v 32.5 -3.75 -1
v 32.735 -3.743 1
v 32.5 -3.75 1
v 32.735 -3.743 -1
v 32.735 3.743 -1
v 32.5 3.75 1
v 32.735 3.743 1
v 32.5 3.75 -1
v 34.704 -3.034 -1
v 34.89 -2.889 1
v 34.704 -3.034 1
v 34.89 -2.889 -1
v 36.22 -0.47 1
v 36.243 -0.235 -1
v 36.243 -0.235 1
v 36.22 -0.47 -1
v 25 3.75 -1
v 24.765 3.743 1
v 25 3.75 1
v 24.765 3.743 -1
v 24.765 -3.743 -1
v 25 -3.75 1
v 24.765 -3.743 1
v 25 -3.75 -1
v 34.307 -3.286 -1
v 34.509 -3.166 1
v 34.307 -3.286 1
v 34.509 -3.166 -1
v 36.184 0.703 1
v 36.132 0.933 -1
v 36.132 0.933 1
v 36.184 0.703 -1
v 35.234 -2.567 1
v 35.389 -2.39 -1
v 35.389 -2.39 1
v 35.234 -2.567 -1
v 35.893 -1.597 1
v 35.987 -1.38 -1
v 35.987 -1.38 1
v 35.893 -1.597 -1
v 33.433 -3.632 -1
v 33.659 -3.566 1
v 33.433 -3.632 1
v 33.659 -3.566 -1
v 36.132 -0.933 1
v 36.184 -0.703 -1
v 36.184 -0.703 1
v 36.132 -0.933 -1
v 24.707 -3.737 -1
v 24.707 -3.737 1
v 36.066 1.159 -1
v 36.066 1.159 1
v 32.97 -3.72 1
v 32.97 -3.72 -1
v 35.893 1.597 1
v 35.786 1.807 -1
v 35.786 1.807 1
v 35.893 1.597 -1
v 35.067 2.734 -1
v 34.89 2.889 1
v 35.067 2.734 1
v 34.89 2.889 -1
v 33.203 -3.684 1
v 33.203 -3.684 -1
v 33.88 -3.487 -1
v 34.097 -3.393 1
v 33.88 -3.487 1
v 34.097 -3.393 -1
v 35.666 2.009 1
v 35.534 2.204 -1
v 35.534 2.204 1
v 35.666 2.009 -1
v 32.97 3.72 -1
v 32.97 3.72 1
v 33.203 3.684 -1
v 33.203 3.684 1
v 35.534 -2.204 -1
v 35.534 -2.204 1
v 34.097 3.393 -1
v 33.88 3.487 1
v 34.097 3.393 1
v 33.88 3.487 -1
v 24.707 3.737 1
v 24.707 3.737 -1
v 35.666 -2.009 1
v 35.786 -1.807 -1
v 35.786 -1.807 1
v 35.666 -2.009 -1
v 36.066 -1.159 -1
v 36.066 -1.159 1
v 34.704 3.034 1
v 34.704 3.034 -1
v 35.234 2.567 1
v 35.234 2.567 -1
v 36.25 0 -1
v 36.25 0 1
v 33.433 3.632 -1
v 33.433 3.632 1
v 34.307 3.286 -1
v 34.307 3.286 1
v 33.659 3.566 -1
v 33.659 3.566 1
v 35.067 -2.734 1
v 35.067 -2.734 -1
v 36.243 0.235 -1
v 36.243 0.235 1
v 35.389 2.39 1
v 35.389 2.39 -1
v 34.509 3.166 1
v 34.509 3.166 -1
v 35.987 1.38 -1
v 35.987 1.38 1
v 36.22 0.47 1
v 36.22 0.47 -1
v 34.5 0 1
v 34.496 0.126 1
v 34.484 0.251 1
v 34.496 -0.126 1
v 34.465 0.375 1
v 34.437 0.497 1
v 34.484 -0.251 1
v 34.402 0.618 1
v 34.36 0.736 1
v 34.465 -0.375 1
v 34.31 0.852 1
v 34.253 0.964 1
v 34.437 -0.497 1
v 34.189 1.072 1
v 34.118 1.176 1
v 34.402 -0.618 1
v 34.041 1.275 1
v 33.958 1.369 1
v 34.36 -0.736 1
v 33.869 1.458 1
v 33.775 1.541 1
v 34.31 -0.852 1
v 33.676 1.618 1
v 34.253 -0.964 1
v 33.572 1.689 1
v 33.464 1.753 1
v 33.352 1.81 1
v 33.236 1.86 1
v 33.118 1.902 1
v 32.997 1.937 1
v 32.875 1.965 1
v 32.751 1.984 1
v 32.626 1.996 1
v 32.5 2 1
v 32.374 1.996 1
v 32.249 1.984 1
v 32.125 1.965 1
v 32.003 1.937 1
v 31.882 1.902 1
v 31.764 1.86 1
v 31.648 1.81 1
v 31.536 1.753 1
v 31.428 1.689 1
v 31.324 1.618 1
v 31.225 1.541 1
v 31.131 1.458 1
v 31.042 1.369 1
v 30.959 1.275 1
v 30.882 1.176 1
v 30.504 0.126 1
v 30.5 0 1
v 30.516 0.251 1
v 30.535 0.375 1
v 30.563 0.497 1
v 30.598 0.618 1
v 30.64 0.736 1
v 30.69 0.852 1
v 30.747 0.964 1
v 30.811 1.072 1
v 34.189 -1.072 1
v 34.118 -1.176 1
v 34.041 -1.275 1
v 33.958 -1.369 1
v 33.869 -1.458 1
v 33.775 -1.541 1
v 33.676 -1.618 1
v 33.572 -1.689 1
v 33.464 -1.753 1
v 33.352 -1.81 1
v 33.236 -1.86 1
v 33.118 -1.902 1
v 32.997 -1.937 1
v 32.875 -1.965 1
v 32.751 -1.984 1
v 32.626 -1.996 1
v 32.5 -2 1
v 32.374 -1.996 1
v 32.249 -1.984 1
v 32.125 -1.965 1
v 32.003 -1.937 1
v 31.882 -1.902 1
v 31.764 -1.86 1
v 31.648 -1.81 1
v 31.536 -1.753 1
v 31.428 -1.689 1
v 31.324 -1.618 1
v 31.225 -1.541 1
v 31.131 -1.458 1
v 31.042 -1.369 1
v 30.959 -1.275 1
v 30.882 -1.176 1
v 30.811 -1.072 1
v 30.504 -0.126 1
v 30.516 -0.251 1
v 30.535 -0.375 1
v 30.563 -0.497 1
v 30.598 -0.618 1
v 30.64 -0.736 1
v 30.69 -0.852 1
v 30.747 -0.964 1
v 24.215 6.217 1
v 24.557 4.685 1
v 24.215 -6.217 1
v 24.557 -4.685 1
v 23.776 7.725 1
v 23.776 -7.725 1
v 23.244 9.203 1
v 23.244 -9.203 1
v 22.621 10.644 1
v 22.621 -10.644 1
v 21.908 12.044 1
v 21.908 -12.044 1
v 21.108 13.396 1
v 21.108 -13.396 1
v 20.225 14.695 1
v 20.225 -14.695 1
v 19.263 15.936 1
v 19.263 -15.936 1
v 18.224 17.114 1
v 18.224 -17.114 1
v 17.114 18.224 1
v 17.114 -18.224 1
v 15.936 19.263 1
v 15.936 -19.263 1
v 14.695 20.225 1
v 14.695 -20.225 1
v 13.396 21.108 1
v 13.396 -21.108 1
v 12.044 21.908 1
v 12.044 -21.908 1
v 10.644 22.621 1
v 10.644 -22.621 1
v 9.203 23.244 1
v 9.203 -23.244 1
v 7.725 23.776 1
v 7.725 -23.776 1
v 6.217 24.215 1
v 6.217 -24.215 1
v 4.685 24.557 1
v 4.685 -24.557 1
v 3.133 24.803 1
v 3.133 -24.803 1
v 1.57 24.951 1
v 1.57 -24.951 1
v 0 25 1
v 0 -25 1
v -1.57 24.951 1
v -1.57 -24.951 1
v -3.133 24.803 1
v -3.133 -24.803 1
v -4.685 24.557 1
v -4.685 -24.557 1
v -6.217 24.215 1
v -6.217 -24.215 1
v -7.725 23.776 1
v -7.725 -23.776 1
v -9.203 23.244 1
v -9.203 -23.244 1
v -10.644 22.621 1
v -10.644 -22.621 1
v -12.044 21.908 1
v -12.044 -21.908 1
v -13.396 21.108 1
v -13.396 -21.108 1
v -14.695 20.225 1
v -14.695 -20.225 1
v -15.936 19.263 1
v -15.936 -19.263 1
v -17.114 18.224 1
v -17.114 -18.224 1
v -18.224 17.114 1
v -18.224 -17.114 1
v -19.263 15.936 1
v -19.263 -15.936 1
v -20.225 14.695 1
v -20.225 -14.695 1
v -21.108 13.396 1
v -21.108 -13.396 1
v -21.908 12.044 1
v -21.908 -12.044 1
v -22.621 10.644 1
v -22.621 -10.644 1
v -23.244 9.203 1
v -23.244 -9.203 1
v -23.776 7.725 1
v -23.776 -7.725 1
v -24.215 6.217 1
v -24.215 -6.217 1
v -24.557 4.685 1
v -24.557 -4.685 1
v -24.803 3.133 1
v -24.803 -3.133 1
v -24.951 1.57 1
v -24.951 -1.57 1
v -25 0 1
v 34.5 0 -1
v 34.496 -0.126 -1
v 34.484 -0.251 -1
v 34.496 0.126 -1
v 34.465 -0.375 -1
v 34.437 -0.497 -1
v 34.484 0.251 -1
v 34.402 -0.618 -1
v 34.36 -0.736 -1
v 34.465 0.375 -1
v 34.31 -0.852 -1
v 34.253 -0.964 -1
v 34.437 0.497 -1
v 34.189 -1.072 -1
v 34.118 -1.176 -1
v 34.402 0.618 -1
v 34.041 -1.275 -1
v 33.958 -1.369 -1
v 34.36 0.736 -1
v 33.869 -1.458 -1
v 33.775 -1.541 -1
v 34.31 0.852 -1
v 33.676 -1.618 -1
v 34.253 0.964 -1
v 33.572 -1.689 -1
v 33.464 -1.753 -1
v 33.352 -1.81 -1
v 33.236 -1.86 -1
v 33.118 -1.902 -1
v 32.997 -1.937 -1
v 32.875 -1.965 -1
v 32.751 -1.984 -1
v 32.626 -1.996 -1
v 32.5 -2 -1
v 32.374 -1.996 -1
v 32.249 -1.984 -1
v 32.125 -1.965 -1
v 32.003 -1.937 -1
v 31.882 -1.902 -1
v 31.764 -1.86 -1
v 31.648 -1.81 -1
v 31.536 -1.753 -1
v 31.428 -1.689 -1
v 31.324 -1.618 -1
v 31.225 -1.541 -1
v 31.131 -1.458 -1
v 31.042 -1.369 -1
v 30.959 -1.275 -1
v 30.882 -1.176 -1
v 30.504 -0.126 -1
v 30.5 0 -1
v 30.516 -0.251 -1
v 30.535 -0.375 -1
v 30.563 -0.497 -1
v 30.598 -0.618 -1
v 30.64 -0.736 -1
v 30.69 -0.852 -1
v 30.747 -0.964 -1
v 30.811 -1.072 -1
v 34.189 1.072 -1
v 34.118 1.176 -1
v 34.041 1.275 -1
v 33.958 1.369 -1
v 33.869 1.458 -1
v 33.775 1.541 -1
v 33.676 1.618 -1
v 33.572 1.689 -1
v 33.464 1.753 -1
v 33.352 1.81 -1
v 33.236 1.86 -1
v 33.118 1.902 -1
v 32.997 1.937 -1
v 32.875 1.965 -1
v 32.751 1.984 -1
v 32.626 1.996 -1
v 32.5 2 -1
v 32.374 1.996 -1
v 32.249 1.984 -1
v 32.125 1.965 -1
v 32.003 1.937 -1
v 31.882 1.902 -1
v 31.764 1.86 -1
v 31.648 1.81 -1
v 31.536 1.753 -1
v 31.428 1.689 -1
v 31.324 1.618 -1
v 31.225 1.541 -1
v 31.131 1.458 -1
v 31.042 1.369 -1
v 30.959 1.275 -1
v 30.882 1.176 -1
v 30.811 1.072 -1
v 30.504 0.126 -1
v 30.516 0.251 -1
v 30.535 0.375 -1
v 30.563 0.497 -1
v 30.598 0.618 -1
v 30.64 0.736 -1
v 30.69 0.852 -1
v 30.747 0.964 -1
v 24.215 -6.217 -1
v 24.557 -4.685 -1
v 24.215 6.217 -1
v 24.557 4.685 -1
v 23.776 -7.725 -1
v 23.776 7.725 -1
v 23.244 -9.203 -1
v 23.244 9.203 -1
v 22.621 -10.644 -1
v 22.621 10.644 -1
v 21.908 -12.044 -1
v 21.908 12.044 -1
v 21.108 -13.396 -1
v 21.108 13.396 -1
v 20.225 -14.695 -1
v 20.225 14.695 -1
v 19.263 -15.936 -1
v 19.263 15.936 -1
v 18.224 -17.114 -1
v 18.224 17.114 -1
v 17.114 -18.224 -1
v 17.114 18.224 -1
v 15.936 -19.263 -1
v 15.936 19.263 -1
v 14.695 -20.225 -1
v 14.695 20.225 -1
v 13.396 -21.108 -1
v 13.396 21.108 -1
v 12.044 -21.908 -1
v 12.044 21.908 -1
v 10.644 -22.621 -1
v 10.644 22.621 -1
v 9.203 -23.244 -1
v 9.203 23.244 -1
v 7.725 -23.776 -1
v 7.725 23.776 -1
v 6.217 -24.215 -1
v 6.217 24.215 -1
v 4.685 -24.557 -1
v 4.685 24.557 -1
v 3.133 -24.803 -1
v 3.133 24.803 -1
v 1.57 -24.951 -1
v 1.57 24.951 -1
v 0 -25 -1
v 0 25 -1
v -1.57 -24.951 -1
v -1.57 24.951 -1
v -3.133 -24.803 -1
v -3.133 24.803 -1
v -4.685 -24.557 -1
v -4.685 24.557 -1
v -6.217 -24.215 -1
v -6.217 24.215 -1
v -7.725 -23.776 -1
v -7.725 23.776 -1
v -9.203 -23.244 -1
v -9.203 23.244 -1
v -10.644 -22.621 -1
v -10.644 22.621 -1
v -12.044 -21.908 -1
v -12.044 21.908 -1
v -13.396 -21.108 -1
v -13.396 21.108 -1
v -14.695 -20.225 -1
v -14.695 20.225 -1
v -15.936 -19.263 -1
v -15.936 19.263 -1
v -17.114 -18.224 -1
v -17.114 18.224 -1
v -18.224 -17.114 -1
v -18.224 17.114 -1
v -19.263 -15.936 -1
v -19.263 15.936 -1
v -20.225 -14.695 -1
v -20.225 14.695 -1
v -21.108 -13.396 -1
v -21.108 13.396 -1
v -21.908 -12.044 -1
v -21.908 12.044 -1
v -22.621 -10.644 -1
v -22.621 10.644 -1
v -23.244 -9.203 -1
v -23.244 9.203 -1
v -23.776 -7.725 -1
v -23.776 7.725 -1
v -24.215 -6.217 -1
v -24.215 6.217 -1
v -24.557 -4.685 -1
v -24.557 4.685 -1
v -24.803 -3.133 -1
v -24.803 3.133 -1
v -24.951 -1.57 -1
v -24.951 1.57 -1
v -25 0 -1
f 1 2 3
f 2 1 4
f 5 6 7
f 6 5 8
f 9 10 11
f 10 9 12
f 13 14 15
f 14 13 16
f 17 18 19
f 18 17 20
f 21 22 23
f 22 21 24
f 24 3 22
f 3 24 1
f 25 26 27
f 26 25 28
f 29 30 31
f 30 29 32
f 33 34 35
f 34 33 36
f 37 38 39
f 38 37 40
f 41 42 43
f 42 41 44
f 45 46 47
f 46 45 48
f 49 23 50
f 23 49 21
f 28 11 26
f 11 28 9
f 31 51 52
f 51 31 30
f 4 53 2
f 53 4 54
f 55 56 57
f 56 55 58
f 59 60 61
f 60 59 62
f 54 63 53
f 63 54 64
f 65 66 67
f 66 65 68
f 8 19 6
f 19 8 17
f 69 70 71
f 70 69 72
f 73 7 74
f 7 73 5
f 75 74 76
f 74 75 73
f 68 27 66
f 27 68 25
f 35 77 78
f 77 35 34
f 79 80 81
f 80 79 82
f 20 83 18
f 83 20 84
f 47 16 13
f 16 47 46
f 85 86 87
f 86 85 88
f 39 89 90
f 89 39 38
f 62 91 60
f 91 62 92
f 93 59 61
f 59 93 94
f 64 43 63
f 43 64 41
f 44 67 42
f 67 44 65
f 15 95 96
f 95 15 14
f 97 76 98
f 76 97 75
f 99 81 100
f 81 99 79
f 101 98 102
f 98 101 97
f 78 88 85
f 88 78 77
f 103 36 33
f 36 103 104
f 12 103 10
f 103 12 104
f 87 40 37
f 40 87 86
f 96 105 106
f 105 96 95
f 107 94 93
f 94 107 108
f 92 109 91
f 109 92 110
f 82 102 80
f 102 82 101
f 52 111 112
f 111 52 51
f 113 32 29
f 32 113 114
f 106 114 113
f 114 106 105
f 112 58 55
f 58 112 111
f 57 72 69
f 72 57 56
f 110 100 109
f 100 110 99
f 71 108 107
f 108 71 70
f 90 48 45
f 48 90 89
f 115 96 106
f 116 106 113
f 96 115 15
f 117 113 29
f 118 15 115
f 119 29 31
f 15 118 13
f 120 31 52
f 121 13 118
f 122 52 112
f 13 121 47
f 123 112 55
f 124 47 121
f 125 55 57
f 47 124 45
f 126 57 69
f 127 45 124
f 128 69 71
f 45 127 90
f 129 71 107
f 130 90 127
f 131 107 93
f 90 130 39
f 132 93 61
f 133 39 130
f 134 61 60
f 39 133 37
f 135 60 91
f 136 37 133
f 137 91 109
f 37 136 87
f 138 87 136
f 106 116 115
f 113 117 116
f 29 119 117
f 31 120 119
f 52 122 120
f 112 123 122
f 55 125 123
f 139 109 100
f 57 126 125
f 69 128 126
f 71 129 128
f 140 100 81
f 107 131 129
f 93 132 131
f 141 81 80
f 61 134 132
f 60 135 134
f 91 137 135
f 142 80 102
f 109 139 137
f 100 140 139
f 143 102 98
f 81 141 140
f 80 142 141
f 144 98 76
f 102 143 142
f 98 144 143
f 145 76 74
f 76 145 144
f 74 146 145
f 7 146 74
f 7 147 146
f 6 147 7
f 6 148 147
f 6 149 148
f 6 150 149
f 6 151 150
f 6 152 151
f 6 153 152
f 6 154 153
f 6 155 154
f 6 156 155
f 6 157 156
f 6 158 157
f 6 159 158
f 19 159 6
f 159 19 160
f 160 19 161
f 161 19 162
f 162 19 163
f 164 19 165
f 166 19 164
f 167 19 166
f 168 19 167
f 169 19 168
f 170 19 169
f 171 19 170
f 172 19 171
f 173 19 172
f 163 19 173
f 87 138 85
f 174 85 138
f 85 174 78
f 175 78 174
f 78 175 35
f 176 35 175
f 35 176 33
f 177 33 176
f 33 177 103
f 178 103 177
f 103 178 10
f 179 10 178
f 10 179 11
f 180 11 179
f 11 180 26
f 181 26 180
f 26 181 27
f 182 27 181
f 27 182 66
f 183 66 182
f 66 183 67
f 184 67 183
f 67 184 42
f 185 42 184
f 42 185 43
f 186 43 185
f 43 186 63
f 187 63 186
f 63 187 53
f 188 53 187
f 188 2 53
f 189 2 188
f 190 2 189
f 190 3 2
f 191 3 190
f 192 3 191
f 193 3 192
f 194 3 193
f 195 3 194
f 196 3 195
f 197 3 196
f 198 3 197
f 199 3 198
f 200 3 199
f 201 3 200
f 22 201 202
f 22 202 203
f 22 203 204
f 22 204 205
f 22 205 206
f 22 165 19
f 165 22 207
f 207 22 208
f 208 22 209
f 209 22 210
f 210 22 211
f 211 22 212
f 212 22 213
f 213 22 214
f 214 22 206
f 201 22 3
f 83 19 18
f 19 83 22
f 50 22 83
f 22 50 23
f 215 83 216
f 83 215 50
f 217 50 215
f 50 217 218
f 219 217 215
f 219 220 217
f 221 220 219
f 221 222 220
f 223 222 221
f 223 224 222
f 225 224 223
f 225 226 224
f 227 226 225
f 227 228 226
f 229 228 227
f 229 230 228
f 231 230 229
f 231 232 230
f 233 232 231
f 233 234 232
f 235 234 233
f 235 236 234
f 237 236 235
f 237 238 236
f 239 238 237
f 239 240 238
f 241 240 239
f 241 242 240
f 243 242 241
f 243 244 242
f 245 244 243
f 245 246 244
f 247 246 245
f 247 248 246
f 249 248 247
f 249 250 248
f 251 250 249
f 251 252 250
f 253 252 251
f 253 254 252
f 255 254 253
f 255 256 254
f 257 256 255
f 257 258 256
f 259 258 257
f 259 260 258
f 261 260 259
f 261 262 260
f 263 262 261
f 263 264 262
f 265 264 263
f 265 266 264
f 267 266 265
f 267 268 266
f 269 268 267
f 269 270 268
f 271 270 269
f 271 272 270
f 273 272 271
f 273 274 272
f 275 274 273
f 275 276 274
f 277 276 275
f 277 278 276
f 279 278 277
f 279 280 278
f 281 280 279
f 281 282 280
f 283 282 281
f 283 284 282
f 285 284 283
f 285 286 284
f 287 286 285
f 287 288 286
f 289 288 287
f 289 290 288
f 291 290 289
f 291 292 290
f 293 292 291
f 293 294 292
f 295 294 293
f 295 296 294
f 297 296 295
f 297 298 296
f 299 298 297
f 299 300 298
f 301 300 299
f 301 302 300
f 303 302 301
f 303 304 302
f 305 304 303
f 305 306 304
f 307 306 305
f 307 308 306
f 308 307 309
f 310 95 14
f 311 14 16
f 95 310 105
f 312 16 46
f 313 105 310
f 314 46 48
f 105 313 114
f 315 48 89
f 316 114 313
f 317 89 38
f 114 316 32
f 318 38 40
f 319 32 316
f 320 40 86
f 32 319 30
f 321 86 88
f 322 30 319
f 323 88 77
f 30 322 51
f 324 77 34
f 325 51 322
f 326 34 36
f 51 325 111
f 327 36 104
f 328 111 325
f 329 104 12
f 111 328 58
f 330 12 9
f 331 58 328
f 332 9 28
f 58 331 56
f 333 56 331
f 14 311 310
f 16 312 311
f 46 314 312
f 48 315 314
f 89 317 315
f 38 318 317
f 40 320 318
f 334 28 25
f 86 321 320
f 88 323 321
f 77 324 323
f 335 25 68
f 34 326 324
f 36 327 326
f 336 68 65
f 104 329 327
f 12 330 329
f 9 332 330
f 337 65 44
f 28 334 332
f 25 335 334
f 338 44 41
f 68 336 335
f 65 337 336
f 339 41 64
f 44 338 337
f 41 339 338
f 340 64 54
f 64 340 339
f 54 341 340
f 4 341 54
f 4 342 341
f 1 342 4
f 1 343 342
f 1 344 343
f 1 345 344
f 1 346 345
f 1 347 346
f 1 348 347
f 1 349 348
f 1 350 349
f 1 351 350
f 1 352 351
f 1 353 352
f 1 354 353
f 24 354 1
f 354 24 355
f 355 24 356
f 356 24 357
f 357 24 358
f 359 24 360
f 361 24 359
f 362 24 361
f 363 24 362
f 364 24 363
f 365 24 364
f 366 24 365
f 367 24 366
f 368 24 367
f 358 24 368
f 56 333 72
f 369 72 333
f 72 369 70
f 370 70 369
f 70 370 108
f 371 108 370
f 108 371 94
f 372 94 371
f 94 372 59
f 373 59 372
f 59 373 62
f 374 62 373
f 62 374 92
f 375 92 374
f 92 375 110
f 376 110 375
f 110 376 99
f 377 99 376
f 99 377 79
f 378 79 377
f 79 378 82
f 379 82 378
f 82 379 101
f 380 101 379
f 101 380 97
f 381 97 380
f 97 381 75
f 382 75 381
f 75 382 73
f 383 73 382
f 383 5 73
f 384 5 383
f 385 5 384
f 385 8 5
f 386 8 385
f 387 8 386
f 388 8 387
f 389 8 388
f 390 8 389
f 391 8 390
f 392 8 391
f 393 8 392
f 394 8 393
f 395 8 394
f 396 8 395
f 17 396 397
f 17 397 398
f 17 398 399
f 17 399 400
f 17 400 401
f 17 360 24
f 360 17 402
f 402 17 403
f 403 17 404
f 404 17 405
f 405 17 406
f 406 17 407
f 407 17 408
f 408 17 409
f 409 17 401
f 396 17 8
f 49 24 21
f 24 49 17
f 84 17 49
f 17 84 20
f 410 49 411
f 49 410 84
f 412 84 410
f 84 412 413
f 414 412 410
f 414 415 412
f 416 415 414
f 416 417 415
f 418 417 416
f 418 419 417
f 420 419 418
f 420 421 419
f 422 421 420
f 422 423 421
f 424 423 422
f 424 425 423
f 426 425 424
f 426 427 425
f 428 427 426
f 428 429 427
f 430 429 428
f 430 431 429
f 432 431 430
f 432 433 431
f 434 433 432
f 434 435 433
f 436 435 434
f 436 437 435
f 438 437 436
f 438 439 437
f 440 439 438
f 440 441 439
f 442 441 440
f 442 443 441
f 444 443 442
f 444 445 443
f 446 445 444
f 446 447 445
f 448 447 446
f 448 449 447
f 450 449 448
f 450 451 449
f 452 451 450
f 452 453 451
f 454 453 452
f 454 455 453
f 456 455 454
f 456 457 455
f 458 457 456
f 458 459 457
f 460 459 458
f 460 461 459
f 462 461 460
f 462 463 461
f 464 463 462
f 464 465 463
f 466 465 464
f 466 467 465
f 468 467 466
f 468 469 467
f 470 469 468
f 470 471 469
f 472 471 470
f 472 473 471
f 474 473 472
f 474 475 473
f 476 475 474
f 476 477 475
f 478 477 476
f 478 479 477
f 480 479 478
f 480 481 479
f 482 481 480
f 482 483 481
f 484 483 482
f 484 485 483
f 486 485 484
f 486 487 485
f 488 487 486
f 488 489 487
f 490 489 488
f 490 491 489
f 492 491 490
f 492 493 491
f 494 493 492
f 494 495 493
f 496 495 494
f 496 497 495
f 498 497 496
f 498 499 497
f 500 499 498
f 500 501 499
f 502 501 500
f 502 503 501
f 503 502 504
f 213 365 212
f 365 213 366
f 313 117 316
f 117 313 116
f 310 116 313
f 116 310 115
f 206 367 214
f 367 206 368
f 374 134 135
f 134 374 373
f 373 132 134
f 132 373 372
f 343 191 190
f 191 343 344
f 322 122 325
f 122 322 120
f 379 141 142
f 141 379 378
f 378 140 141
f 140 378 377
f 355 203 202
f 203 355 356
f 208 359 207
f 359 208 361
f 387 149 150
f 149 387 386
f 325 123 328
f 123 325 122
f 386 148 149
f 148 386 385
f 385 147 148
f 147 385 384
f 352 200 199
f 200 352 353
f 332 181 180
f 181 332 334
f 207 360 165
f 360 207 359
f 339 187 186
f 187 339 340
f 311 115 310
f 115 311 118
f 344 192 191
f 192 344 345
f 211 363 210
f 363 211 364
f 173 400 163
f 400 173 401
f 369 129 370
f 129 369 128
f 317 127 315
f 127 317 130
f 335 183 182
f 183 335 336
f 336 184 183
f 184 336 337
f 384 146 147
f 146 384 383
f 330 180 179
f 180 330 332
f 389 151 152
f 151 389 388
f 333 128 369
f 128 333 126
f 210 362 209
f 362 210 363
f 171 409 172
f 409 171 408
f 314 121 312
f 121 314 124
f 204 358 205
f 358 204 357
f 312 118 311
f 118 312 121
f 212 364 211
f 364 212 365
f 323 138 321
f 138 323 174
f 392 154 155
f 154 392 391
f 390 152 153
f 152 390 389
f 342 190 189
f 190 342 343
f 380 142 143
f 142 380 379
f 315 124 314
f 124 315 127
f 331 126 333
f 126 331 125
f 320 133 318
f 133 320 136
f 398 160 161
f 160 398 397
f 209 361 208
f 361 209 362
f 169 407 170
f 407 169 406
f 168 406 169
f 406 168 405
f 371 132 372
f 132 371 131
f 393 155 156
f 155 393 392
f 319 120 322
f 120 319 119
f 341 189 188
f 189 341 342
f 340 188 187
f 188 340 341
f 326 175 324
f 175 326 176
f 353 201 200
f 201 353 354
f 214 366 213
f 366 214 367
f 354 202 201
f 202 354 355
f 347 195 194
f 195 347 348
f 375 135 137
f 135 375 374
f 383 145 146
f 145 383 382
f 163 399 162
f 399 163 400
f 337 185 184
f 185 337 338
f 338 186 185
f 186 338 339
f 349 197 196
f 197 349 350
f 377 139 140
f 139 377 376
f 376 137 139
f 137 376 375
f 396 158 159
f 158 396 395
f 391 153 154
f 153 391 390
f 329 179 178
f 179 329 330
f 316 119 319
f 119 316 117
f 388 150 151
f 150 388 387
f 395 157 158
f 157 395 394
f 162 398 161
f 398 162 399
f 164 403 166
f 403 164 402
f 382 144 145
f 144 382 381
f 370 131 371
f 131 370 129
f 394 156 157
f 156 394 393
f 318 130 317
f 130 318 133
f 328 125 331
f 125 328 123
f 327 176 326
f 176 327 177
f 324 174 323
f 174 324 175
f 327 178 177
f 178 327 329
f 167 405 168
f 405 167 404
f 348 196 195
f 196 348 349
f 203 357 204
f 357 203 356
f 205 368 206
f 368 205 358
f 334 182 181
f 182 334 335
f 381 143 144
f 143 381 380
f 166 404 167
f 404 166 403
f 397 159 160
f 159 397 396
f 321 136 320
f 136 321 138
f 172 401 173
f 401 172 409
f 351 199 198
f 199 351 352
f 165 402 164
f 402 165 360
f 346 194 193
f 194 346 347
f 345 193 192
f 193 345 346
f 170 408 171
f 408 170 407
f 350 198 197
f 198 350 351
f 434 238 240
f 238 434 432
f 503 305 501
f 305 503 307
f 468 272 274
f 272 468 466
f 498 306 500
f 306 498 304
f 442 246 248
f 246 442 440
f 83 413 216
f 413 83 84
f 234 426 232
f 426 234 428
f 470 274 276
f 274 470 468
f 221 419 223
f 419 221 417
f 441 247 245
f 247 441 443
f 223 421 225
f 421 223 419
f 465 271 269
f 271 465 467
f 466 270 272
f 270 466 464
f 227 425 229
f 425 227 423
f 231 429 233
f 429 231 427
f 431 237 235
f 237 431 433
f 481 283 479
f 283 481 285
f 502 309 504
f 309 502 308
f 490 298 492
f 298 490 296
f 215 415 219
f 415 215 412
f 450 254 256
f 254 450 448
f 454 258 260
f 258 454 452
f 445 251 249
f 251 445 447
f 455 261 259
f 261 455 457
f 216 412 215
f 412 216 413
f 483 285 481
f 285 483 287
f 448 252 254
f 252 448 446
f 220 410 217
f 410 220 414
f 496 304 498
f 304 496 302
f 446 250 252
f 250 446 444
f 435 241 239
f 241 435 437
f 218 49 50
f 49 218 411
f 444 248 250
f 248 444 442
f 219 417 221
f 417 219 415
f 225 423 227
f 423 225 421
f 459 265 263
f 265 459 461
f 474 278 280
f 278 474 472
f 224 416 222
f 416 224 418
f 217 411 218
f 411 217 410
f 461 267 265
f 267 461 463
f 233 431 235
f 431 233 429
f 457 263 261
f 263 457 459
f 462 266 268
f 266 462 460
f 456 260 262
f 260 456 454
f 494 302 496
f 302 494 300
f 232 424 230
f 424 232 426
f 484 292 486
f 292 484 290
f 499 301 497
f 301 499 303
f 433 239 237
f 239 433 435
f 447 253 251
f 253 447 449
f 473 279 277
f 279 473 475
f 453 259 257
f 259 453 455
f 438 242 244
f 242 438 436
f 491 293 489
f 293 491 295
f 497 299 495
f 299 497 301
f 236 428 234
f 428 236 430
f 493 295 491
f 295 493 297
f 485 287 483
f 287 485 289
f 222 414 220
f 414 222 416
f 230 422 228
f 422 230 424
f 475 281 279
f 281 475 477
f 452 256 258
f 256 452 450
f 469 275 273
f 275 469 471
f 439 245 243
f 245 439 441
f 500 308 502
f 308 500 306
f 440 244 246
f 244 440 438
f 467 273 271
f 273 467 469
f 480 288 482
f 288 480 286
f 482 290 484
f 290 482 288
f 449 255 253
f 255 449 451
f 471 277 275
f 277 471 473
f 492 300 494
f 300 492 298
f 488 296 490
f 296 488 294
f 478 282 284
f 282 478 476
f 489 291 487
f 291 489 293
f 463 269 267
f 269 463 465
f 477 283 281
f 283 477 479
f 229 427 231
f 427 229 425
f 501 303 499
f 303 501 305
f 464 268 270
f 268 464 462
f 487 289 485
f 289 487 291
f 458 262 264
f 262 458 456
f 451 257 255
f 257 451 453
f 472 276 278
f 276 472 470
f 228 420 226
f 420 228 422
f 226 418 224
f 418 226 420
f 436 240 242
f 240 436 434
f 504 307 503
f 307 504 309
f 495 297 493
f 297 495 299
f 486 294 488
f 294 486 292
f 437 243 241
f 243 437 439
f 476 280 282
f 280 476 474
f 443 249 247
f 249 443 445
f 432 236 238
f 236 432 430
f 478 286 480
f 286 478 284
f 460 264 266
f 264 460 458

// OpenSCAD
$fn=100;
rim=7.5;
thickness=2;
internaldiameter=35;
lip=20;
lipthickness=2;

module keyhandle() {

    cylinder(h=thickness, d=internaldiameter+(rim*2), center=true);
}

module tag() {
    difference(){
        hull() {
        translate([internaldiameter/2+rim,0,-thickness/2]) cylinder(h=thickness, d=7.5);
        translate([internaldiameter/2+(rim*2),0,-thickness/2]) cylinder(h=thickness, d=7.5);
        }
        translate([internaldiameter/2+(rim*2),0,-thickness]) cylinder(h=thickness*2, d=4);
    }
}

union() {
    keyhandle();
    tag();
}
